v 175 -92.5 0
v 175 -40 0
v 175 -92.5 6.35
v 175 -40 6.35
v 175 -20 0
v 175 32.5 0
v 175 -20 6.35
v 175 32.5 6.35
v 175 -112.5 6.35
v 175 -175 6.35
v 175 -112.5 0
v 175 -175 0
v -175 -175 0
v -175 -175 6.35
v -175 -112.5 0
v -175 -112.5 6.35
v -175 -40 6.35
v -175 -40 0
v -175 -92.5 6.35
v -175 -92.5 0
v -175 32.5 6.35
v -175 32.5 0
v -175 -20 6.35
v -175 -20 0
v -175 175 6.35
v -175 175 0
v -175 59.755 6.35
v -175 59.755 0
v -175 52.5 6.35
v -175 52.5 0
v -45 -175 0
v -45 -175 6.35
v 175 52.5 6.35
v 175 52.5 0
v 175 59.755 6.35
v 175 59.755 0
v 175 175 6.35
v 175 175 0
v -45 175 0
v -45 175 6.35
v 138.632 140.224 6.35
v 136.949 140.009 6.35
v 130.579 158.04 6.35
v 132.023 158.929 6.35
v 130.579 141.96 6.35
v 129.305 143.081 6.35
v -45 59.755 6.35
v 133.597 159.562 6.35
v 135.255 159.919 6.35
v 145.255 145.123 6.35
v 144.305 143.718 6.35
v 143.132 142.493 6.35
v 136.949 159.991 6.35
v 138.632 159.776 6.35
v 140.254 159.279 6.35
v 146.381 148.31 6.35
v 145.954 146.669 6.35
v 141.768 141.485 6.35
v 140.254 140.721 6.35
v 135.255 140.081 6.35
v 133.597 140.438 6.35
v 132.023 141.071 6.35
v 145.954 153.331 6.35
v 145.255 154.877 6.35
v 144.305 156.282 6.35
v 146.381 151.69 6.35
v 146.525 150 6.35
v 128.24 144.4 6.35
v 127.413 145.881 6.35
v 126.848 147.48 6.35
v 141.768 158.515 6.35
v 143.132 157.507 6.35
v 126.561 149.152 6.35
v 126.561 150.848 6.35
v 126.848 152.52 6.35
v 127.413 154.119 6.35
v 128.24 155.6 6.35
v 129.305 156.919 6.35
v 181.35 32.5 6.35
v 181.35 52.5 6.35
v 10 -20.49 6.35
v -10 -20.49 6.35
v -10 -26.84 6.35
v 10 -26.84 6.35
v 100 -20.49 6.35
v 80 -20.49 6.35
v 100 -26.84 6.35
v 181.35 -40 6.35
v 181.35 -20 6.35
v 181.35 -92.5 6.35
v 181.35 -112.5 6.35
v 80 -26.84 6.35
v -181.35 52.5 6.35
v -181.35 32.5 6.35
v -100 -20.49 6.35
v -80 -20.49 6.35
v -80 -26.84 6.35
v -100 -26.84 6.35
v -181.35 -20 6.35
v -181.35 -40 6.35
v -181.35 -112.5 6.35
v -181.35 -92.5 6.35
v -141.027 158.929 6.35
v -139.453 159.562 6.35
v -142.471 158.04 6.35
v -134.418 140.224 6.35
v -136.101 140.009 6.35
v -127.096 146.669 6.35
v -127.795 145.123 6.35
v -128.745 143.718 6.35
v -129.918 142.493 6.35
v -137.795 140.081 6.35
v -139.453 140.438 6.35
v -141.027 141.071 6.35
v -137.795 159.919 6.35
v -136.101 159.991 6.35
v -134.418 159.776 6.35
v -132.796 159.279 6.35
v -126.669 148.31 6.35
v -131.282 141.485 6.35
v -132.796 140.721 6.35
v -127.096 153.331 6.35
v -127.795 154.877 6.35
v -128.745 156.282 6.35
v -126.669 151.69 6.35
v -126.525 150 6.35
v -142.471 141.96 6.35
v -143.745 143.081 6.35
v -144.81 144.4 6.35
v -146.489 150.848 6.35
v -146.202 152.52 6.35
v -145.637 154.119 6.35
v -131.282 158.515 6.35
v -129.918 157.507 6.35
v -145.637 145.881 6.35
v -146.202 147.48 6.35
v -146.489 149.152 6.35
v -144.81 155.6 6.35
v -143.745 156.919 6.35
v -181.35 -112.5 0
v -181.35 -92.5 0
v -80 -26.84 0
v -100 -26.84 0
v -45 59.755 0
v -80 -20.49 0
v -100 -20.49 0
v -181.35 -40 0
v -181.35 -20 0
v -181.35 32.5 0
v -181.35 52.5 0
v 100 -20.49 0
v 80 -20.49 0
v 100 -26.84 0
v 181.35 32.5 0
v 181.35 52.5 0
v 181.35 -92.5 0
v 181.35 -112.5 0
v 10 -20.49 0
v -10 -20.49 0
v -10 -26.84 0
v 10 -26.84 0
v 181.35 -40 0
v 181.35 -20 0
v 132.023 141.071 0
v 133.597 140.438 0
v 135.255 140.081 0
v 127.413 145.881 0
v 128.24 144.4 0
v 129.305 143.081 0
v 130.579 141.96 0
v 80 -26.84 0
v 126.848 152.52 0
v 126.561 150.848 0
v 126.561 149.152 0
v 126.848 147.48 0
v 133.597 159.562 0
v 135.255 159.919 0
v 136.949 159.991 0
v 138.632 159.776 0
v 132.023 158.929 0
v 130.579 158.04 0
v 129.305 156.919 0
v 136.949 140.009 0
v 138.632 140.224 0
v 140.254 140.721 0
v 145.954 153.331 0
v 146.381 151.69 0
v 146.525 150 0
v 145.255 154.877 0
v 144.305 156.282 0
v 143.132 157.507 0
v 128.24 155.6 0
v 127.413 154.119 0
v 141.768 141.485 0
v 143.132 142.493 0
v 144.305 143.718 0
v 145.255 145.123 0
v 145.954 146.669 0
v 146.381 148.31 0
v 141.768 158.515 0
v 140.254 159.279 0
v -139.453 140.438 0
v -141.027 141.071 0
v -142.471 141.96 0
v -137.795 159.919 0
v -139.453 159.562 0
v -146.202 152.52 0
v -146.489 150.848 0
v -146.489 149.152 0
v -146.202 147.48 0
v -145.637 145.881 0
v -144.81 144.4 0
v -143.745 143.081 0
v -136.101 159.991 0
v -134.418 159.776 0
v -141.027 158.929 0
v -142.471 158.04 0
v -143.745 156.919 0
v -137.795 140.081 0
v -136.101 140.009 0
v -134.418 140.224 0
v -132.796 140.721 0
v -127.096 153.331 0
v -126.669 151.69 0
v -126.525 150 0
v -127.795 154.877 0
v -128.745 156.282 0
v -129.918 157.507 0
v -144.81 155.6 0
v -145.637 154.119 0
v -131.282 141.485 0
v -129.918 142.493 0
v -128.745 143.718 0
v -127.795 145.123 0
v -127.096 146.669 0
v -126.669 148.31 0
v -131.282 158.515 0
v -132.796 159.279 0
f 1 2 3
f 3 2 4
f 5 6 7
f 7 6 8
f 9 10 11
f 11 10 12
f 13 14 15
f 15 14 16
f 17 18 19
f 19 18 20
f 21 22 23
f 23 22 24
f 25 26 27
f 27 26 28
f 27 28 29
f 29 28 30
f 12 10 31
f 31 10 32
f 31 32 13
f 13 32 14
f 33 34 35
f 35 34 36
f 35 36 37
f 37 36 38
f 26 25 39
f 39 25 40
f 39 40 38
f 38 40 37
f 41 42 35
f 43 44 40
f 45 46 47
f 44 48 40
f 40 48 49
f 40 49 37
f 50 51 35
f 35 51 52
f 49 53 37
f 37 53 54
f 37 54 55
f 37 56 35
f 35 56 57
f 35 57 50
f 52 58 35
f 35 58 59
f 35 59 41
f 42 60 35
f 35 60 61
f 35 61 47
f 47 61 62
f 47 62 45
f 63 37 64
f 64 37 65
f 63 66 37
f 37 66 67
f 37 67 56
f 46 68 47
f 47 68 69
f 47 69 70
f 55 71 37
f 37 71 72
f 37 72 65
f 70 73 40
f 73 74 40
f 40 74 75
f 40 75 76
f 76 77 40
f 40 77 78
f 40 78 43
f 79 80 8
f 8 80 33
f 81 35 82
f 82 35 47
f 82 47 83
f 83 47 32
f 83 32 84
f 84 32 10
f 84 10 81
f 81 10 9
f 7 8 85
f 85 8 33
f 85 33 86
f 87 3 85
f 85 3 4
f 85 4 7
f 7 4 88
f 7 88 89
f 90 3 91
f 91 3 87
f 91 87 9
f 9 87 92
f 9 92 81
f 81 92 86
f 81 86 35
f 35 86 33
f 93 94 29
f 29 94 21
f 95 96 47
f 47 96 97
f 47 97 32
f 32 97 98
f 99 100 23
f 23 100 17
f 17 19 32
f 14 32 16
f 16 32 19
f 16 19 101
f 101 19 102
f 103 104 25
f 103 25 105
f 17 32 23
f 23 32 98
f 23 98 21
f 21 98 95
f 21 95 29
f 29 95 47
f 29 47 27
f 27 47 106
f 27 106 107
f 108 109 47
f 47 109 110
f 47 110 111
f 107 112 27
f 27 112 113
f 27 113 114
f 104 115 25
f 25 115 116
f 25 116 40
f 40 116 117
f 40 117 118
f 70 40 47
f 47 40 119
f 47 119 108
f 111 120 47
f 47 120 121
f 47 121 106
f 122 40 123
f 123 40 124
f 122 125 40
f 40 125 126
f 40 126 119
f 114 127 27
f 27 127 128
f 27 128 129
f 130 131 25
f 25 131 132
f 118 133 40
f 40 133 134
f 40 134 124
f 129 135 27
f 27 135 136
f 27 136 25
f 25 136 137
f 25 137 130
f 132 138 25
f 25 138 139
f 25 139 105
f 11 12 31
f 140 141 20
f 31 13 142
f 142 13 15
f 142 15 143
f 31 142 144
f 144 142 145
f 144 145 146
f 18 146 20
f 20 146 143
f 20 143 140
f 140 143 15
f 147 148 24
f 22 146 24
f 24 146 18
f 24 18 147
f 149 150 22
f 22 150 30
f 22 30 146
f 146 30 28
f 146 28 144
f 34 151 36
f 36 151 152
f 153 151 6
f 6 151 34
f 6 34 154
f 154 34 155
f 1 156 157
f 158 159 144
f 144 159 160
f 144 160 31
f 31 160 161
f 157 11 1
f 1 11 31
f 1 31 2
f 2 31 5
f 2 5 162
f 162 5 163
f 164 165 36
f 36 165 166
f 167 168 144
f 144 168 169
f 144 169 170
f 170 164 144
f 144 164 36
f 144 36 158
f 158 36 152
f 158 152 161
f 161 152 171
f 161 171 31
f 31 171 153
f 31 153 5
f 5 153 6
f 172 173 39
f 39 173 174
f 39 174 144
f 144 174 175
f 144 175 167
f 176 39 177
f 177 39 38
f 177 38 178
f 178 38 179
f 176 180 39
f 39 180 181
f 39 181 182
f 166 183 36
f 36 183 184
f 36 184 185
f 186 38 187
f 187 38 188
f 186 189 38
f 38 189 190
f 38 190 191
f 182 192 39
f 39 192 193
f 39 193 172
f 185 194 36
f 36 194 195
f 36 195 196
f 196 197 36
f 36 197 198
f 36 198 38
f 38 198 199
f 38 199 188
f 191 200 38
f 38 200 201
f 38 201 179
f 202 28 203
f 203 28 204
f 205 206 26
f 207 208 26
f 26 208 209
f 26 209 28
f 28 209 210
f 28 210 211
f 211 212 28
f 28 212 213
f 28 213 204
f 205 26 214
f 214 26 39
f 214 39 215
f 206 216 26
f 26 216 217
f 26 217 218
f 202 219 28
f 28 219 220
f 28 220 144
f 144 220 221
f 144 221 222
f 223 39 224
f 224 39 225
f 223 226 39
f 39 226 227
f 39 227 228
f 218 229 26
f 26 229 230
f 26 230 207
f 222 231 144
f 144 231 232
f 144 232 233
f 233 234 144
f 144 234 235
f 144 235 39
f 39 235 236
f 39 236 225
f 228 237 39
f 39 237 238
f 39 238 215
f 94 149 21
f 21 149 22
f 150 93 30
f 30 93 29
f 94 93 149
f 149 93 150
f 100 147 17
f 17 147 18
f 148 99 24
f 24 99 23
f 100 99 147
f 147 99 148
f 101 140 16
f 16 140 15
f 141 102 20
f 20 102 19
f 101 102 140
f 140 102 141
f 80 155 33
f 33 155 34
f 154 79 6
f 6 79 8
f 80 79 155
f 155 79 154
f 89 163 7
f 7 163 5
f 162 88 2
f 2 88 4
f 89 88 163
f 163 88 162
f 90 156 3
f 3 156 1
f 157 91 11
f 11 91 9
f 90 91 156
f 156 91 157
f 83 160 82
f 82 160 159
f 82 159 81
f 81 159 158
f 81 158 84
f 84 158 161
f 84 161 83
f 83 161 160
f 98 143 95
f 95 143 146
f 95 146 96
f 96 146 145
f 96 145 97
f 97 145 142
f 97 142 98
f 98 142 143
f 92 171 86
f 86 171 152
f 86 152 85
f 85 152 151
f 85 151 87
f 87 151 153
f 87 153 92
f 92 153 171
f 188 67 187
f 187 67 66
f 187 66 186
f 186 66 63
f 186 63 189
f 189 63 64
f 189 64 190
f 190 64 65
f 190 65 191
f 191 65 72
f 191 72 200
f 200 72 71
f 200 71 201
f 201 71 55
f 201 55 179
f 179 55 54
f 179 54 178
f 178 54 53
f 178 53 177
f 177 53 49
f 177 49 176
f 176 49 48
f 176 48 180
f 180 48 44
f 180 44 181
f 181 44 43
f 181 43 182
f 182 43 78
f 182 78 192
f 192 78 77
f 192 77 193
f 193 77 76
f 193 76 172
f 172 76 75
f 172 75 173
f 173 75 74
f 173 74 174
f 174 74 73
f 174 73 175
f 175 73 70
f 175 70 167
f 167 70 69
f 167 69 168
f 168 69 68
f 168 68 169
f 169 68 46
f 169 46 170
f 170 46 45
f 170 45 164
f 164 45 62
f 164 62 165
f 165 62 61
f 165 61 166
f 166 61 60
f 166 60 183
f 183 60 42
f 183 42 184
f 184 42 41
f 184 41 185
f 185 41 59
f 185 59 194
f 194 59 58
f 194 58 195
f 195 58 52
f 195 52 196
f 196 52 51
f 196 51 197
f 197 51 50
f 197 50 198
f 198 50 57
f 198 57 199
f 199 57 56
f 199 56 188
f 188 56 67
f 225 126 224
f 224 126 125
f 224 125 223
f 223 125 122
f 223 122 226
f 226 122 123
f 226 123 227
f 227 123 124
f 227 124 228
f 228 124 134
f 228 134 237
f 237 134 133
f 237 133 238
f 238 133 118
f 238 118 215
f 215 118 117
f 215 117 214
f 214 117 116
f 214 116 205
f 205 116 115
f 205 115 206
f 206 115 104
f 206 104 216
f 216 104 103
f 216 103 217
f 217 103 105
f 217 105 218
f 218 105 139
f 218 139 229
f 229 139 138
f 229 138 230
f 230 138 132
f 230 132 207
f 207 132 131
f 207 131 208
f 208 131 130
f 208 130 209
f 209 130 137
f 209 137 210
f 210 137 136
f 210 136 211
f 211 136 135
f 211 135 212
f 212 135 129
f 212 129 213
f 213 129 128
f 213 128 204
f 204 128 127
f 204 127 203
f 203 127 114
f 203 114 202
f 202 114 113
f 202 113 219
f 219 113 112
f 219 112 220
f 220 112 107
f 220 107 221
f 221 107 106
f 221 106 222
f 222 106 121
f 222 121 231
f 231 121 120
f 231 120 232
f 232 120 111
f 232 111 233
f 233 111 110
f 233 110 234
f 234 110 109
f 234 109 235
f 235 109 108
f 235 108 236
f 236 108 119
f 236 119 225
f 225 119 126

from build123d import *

# Parameters (mm, degrees)
CROQUIS1_W              = 350
CROQUIS1_H              = 350
SALIENTE_EXTRUIR1_DEPTH = 6.35
CROQUIS2_W              = 6.35
CROQUIS2_H              = 20
SALIENTE_EXTRUIR2_DEPTH = 6.35
CROQUIS3_W              = 20
CROQUIS3_H              = 6.35
CORTAR_EXTRUIR1_DEPTH   = 10
CROQUIS4_R              = 10
CORTAR_EXTRUIR2_DEPTH   = 253.097491062


with BuildPart() as part:
    # Croquis1 → Saliente-Extruir1 (new body)
    with BuildSketch(Plane.XY):
        Rectangle(CROQUIS1_W, CROQUIS1_H)
    extrude(amount=SALIENTE_EXTRUIR1_DEPTH)

    # Croquis2 → Saliente-Extruir2 (add)
    with BuildSketch(Plane.ZY.offset(175)):
        with Locations((3.175, 42.5)):
            Rectangle(CROQUIS2_W, CROQUIS2_H)
        with Locations((3.175, -30)):
            Rectangle(CROQUIS2_W, CROQUIS2_H)
        with Locations((3.175, -102.5)):
            Rectangle(CROQUIS2_W, CROQUIS2_H)
    saliente_extruir2 = extrude(amount=SALIENTE_EXTRUIR2_DEPTH)

    # Simetría1: Saliente-Extruir2 across plane
    add(saliente_extruir2.mirror(Plane(origin=(0, 0, 0), x_dir=(0, 0, 1), z_dir=(1, 0, 0))))

    # Croquis3 → Cortar-Extruir1 (cut)
    with BuildSketch(Plane.XY.offset(6.35)):
        with Locations((0, -23.665)):
            Rectangle(CROQUIS3_W, CROQUIS3_H)
        with Locations((90, -23.665)):
            Rectangle(CROQUIS3_W, CROQUIS3_H)
        with Locations((-90, -23.665)):
            Rectangle(CROQUIS3_W, CROQUIS3_H)
    extrude(amount=-CORTAR_EXTRUIR1_DEPTH, mode=Mode.SUBTRACT)

    # Croquis4 → Cortar-Extruir2 (cut, through all)
    with BuildSketch(Plane.XY.offset(6.35)):
        with Locations((-136.525, 150)):
            Circle(CROQUIS4_R)
        with Locations((136.525, 150)):
            Circle(CROQUIS4_R)
    extrude(amount=-CORTAR_EXTRUIR2_DEPTH, mode=Mode.SUBTRACT)


solid = part.part
